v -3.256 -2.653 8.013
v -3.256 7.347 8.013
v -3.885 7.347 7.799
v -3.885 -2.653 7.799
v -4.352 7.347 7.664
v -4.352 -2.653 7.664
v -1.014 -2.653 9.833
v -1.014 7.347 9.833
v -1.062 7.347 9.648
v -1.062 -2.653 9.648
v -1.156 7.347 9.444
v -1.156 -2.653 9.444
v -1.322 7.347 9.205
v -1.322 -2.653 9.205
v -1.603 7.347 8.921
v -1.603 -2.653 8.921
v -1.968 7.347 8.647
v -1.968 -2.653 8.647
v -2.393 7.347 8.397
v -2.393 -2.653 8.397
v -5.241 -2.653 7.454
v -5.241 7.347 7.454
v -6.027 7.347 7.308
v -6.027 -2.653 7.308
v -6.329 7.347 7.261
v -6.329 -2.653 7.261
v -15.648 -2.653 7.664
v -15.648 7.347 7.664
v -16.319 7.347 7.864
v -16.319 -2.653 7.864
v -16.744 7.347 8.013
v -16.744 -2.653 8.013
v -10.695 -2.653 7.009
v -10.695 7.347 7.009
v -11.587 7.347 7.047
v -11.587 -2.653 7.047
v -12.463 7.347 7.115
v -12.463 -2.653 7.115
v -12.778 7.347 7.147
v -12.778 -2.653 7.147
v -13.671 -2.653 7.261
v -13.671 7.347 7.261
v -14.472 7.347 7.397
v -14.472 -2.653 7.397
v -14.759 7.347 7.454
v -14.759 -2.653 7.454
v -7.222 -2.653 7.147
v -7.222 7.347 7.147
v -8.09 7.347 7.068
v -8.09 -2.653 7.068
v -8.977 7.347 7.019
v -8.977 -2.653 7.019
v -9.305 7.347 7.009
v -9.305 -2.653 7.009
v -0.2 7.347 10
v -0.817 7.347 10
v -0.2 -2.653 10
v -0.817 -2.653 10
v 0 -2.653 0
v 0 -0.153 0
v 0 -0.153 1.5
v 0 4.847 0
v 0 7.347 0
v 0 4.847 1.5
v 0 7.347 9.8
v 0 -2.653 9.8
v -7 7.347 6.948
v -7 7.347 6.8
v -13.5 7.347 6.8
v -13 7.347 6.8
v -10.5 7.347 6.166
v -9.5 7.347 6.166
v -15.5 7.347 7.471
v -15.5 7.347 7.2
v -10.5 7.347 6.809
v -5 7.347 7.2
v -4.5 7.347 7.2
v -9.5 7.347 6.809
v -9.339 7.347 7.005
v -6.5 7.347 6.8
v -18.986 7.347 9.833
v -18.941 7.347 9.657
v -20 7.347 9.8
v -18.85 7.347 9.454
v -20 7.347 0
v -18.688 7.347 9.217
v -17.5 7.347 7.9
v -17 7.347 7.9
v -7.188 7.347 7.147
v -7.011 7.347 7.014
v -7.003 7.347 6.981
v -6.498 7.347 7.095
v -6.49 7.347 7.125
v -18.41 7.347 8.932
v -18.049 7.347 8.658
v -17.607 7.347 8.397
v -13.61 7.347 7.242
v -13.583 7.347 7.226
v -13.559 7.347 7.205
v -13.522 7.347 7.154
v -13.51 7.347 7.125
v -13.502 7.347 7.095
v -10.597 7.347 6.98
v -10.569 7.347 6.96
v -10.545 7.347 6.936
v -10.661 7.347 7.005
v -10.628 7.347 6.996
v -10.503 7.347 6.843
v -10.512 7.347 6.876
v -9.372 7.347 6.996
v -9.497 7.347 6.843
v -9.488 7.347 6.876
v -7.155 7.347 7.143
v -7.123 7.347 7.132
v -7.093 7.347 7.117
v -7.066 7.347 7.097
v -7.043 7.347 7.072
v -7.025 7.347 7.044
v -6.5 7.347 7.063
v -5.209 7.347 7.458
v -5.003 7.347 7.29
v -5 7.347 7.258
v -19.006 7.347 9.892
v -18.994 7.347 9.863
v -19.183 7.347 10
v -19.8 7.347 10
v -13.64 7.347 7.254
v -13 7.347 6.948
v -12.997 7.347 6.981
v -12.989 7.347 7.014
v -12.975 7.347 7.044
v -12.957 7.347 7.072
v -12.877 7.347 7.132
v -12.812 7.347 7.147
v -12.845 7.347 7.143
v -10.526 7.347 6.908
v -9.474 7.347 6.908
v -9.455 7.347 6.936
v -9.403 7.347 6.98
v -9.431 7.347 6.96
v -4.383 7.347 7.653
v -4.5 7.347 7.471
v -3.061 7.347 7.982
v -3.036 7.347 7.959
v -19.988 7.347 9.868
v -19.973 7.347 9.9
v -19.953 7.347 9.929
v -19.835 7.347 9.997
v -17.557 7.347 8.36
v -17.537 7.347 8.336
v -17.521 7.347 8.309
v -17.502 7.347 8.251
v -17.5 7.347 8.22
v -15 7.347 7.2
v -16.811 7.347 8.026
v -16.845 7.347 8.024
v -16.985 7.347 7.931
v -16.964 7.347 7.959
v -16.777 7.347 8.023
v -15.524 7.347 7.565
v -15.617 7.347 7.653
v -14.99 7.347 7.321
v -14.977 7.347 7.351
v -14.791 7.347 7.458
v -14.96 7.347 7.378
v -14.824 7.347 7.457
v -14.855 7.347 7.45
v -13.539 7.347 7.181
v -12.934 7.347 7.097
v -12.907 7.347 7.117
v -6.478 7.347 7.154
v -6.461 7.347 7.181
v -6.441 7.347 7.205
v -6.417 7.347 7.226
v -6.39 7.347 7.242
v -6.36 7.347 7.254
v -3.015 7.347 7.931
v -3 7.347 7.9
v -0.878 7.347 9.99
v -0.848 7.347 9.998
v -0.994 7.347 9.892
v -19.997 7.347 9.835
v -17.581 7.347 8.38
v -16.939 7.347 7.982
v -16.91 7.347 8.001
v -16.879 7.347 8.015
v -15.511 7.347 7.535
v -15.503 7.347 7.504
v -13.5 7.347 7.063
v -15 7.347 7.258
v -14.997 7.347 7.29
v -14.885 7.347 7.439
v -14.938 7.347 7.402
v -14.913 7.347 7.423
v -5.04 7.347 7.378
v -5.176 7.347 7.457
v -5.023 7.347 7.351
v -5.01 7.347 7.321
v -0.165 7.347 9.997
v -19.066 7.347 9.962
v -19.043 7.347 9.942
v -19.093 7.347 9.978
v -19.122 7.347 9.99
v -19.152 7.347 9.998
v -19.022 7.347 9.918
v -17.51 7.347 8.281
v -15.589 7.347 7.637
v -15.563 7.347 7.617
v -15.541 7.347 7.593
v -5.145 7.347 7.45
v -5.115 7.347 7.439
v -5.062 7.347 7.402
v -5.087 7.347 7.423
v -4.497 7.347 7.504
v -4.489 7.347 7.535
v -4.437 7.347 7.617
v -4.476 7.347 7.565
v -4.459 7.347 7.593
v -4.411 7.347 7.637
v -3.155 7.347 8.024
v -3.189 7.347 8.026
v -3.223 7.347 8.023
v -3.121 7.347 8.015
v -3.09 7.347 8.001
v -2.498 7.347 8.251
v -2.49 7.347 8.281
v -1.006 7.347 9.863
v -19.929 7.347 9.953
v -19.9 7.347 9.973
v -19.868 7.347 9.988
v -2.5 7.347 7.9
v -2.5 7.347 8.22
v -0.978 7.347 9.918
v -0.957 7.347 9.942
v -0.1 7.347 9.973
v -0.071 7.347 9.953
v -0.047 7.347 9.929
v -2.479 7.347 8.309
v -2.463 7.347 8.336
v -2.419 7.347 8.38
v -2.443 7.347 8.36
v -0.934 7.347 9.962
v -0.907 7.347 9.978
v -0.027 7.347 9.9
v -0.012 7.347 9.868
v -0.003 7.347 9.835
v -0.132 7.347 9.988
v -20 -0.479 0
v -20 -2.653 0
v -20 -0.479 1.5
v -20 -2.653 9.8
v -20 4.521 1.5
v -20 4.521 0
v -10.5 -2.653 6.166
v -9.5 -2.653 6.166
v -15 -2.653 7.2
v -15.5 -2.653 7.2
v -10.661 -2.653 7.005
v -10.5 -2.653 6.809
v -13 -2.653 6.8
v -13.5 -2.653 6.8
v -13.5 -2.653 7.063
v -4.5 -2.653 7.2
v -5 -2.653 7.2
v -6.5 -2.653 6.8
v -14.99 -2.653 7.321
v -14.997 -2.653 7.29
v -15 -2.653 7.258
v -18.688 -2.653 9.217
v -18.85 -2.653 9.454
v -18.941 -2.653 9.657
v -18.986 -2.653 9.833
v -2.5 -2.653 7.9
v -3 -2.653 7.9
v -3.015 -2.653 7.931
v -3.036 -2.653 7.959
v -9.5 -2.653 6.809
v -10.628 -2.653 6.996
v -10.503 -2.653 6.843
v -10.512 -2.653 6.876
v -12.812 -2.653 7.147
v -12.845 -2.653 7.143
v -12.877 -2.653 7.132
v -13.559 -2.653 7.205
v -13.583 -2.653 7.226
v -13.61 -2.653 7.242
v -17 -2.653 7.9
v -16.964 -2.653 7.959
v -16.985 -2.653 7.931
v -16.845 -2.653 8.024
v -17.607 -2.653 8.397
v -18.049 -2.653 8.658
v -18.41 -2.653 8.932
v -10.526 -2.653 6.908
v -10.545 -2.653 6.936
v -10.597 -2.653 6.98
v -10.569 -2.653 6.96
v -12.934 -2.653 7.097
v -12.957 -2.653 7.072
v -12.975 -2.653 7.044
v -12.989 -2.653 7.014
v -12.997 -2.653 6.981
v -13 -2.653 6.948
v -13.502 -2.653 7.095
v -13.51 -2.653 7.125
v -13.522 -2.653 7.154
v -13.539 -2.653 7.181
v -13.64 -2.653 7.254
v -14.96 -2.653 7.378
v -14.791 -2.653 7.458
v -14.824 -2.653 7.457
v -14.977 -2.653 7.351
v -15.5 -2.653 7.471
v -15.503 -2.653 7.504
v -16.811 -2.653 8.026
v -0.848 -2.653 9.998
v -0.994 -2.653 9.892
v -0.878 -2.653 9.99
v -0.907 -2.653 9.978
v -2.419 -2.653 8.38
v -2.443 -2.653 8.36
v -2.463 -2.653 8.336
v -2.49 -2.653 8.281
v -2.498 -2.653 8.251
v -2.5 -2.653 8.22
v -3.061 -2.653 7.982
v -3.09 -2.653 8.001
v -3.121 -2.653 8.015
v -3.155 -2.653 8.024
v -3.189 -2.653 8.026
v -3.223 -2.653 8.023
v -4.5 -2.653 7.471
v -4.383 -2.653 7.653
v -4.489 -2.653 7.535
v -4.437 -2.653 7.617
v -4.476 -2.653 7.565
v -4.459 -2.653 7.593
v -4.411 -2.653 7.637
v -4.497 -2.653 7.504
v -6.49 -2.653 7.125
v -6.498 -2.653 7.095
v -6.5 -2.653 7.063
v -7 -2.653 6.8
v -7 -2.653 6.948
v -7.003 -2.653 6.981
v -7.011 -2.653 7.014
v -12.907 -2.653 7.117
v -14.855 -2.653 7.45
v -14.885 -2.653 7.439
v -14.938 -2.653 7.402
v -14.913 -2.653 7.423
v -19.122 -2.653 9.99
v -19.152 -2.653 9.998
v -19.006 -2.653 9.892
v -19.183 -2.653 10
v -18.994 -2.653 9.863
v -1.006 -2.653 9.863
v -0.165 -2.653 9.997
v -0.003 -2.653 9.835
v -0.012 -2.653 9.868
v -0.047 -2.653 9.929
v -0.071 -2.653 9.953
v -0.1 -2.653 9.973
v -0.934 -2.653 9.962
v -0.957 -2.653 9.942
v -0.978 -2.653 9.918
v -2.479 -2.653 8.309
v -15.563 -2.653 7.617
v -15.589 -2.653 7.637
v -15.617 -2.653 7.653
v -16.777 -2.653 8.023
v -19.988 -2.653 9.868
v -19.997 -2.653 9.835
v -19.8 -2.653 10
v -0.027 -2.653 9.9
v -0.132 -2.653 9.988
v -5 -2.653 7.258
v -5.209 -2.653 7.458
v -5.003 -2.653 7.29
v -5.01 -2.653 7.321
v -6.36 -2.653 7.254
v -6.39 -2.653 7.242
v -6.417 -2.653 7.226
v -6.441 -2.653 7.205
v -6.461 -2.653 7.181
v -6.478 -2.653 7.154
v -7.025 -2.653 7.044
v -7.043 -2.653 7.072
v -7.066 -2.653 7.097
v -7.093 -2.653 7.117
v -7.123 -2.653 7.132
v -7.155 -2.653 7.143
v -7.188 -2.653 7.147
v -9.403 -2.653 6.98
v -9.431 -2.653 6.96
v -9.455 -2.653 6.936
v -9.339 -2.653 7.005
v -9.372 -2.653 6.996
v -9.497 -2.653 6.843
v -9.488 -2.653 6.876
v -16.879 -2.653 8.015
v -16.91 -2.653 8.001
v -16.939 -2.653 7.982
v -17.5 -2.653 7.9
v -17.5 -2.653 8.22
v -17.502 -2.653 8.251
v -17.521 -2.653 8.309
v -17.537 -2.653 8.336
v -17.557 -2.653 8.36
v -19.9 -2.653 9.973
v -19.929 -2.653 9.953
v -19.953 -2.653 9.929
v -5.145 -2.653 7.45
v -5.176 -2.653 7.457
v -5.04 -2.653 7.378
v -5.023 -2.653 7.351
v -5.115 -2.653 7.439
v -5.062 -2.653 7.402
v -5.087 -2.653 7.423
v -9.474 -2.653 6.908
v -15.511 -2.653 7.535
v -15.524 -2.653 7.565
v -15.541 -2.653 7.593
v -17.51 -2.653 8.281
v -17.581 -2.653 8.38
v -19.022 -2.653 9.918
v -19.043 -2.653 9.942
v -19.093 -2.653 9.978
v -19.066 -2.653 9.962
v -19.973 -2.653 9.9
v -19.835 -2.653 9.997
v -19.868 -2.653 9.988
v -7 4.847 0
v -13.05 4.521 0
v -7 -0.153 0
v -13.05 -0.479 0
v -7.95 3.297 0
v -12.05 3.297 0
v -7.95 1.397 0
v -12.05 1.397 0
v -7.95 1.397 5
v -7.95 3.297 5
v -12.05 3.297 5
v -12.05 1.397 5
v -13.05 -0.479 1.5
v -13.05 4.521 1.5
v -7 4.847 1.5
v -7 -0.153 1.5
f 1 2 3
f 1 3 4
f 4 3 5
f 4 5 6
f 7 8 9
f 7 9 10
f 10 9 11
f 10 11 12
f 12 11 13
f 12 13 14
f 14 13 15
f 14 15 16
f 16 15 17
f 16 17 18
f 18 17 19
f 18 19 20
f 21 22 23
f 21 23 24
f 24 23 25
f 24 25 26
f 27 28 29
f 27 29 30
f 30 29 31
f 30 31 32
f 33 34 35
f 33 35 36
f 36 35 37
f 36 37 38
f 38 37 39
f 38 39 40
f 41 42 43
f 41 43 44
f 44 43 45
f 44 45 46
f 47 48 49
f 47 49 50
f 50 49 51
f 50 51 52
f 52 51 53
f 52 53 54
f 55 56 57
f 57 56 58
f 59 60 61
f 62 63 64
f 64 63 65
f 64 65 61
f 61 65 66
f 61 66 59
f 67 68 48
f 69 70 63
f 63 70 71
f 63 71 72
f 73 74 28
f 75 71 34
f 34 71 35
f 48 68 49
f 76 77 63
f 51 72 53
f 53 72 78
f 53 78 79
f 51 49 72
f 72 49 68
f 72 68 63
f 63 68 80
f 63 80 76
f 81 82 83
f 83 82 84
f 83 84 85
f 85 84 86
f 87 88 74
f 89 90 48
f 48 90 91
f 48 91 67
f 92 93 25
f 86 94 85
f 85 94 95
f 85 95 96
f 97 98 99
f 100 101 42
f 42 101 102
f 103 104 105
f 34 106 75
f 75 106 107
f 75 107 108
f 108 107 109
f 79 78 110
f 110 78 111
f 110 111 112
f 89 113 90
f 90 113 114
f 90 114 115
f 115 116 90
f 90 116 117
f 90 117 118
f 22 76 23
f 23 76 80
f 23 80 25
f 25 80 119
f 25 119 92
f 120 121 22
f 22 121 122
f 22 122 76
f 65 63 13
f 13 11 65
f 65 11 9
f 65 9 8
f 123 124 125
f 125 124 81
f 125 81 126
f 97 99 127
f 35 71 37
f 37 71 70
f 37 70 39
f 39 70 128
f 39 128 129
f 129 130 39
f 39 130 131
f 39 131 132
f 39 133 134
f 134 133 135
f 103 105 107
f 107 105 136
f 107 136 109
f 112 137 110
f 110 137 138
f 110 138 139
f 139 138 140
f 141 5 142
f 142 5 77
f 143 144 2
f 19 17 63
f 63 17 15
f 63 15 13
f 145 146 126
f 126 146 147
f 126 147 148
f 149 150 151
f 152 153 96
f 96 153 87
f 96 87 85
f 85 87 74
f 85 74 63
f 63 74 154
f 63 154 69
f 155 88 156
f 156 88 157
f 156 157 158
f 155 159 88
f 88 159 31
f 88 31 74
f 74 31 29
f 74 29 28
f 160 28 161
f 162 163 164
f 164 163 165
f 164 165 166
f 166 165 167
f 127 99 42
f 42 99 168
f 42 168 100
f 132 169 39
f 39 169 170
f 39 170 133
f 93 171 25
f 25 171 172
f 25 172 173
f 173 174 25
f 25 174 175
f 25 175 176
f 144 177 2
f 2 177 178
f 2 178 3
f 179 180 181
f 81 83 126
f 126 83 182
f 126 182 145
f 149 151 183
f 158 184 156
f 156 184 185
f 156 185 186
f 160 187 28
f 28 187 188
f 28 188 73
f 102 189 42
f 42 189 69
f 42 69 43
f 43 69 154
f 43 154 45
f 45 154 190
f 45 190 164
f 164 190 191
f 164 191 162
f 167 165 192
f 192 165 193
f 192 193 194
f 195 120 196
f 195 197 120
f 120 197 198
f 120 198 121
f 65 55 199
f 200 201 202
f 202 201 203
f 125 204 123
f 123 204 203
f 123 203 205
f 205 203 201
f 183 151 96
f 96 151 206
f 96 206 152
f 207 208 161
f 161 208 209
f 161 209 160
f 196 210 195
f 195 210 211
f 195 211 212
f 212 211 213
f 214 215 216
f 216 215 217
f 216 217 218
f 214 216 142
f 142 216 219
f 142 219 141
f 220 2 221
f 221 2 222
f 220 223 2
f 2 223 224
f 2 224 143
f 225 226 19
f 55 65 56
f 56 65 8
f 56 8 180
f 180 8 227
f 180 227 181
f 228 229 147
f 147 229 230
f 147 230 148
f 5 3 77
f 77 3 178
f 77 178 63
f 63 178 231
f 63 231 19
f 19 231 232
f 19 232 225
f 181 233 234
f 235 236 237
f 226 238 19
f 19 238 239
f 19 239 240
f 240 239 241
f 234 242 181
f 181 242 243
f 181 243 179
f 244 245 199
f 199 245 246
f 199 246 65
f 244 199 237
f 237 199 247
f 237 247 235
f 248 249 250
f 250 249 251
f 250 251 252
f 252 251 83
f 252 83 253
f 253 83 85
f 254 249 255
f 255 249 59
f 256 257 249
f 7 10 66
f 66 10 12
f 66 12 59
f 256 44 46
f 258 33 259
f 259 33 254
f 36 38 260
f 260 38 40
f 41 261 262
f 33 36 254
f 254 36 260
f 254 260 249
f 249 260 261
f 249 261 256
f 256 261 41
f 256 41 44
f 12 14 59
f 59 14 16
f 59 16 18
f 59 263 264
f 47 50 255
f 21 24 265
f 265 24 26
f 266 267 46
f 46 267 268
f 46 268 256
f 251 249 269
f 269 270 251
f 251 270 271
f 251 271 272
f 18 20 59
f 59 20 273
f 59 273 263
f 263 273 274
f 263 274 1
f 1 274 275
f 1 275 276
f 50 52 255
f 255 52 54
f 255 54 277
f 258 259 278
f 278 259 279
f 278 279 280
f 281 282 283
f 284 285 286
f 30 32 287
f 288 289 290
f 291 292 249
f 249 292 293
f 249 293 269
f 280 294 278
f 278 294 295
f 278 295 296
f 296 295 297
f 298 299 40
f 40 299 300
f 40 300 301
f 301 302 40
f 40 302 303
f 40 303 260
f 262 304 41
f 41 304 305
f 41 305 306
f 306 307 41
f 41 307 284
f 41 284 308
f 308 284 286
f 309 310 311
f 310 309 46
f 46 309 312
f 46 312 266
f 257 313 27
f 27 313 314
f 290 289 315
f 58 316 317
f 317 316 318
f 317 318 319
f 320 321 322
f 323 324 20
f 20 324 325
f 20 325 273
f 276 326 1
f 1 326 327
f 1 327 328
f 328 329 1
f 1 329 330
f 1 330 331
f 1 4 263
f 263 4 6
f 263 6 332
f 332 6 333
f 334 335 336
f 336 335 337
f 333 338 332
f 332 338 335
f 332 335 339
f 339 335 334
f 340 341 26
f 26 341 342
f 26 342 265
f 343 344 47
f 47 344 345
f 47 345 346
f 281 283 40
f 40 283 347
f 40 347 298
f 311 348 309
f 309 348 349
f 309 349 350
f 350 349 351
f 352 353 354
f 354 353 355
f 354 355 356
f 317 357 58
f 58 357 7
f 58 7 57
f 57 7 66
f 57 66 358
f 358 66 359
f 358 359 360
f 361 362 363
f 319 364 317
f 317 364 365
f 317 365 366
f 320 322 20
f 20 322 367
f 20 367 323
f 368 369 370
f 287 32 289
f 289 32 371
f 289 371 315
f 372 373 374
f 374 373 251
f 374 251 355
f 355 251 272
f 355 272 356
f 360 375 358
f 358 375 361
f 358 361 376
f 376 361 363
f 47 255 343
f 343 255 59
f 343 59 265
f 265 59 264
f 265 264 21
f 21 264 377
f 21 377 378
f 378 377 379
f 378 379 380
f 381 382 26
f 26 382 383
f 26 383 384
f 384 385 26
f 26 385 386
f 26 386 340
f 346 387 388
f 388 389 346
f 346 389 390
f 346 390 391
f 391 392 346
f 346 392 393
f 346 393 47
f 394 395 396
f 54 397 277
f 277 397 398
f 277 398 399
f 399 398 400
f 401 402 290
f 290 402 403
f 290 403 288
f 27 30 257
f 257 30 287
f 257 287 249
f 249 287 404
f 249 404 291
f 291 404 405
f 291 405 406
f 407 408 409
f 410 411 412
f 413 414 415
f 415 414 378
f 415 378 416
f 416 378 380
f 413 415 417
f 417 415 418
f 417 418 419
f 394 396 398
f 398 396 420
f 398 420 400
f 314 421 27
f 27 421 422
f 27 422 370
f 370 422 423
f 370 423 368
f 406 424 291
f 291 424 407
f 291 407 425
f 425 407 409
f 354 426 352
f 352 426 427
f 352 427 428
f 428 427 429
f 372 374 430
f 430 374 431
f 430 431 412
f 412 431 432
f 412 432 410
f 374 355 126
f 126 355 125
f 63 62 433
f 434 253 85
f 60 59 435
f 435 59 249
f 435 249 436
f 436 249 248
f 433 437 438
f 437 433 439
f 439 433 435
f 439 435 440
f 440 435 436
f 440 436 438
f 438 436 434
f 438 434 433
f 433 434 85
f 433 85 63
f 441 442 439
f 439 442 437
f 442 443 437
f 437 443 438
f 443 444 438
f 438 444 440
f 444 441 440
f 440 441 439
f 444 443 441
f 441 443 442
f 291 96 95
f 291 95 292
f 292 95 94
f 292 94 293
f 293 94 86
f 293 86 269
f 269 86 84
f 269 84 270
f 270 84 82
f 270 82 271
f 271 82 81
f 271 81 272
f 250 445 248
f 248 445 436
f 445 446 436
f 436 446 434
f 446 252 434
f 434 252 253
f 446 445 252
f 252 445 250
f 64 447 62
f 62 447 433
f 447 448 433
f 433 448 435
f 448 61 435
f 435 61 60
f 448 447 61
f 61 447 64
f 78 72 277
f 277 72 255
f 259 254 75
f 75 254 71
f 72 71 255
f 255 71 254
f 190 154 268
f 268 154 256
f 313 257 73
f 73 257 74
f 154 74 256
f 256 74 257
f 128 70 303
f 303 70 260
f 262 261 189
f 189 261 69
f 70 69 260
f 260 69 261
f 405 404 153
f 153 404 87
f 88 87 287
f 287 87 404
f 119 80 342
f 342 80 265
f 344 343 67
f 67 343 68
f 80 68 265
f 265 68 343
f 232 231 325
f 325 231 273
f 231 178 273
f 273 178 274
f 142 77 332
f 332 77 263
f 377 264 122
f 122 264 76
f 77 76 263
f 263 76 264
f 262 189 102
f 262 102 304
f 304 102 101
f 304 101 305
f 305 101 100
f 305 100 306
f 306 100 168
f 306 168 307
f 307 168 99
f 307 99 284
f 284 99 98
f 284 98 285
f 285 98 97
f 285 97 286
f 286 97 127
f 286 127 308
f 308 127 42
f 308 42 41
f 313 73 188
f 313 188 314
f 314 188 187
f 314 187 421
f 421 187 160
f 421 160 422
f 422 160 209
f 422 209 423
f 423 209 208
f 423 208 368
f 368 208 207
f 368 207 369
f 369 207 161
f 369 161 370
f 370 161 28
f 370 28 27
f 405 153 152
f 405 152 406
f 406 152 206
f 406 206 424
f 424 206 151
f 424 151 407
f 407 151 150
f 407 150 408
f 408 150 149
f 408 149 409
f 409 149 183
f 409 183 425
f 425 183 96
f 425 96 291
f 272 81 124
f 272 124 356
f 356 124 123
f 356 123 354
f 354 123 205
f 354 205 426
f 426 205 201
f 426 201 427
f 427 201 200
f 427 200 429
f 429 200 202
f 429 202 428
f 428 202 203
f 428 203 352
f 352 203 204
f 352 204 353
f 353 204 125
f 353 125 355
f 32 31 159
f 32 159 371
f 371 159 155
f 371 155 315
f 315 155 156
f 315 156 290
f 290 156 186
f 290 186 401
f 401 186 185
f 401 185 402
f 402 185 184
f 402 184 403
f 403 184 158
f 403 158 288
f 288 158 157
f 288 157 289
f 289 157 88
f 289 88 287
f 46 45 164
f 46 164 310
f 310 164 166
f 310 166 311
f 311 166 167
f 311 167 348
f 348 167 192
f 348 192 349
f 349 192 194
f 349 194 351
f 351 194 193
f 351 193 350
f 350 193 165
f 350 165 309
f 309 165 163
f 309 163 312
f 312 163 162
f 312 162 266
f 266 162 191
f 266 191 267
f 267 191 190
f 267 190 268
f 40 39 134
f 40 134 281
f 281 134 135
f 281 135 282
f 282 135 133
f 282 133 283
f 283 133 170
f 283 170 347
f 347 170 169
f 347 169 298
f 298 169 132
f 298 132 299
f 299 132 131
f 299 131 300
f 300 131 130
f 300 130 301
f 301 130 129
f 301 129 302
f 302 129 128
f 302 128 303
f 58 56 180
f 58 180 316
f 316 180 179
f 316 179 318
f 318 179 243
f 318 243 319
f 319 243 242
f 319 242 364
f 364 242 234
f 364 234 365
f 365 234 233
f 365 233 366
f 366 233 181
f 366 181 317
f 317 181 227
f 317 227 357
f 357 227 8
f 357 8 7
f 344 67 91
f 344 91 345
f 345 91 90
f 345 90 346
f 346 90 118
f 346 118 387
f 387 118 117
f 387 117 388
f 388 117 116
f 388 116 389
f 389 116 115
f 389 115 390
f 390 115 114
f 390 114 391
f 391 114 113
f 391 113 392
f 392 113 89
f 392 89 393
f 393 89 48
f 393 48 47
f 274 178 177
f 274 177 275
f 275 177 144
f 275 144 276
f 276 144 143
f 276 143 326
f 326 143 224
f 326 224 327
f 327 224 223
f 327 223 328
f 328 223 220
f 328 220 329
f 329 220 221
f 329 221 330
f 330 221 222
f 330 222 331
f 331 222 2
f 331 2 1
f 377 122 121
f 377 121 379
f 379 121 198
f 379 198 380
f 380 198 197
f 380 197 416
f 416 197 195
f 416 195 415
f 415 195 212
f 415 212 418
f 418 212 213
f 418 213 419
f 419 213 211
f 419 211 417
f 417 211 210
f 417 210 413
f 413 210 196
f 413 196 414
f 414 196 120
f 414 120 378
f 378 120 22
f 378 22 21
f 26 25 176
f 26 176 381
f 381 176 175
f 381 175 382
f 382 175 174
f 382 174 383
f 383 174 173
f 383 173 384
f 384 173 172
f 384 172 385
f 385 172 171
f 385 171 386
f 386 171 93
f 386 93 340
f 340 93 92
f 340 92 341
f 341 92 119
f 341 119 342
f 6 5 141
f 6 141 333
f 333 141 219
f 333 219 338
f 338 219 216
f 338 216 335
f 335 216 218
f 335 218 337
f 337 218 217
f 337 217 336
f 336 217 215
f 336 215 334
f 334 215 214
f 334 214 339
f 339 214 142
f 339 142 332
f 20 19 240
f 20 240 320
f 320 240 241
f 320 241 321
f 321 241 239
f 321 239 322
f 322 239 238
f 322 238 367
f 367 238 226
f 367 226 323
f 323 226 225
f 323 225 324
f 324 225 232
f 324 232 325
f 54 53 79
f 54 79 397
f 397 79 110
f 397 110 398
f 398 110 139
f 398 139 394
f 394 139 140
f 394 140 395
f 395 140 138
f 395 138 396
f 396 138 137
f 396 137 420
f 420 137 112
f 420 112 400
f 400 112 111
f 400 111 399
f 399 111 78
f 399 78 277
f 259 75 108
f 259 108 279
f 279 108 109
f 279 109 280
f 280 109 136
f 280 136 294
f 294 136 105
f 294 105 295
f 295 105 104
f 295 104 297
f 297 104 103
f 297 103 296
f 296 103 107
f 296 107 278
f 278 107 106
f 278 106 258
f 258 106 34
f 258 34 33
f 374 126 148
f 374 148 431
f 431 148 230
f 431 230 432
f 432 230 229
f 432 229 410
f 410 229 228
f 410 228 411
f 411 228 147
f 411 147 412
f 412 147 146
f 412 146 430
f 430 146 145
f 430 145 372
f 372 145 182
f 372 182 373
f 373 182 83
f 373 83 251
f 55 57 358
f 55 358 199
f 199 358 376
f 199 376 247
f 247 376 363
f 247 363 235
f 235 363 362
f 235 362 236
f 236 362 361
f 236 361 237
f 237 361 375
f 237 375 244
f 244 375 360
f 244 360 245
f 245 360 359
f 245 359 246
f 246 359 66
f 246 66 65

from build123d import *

# Parameters (mm, degrees)
SKIZZE1_W                       = 20
SKIZZE1_H                       = 10
AUFSATZ_LINEAR_AUSTRAGEN1_DEPTH = 10
SKIZZE3_W                       = 4.1
SKIZZE3_H                       = 1.9
SCHNITT_LINEAR_AUSTRAGEN2_DEPTH = 5
SKIZZE9_RX                      = 9
SKIZZE9_RY                      = 3
SCHNITT_LINEAR_AUSTRAGEN3_DEPTH = 10
SKIZZE10_W                      = 6.95
SKIZZE10_H                      = 5
SCHNITT_LINEAR_AUSTRAGEN4_DEPTH = 1.5
SKIZZE11_W                      = 7
SKIZZE11_H                      = 5
SCHNITT_LINEAR_AUSTRAGEN5_DEPTH = 1.5
SKIZZE13_W                      = 1
SKIZZE13_H                      = 1
SCHNITT_LINEAR_AUSTRAGEN7_DEPTH = 10
SKIZZE14_W                      = 0.5
SKIZZE14_H                      = 0.5
SCHNITT_LINEAR_AUSTRAGEN8_DEPTH = 10
VERRUNDUNG2_R                   = 0.2
VERRUNDUNG3_R                   = 0.2
VERRUNDUNG4_R                   = 0.2
VERRUNDUNG5_R                   = 0.2
VERRUNDUNG6_R                   = 0.2


with BuildPart() as part:
    # Skizze1 → Aufsatz-Linear austragen1 (new body)
    with BuildSketch(Plane.XY):
        with Locations((-10, 2.346944746)):
            Rectangle(SKIZZE1_W, SKIZZE1_H)
    extrude(amount=AUFSATZ_LINEAR_AUSTRAGEN1_DEPTH)

    # Skizze3 → Schnitt-Linear austragen2 (cut)
    with BuildSketch(Plane(origin=(0, 0, 0), x_dir=(-1, 0, 0), z_dir=(0, 0, -1))):
        with Locations((10, 2.346944746)):
            Rectangle(SKIZZE3_W, SKIZZE3_H)
    extrude(amount=-SCHNITT_LINEAR_AUSTRAGEN2_DEPTH, mode=Mode.SUBTRACT)

    # Skizze9 → Schnitt-Linear austragen3 (cut)
    with BuildSketch(Plane(origin=(0, 7.346944746, 0), x_dir=(1, 0, 0), z_dir=(0, 1, 0))):
        with Locations((-10, -10)):
            Ellipse(SKIZZE9_RX, SKIZZE9_RY)
    extrude(amount=-SCHNITT_LINEAR_AUSTRAGEN3_DEPTH, mode=Mode.SUBTRACT)

    # Skizze10 → Schnitt-Linear austragen4 (cut)
    with BuildSketch(Plane(origin=(0, 0, 0), x_dir=(-1, 0, 0), z_dir=(0, 0, -1))):
        with Locations((16.525, 2.021356222)):
            Rectangle(SKIZZE10_W, SKIZZE10_H)
    extrude(amount=-SCHNITT_LINEAR_AUSTRAGEN4_DEPTH, mode=Mode.SUBTRACT)

    # Skizze11 → Schnitt-Linear austragen5 (cut)
    with BuildSketch(Plane(origin=(0, 0, 0), x_dir=(-1, 0, 0), z_dir=(0, 0, -1))):
        with Locations((3.5, 2.346944746)):
            Rectangle(SKIZZE11_W, SKIZZE11_H)
    extrude(amount=-SCHNITT_LINEAR_AUSTRAGEN5_DEPTH, mode=Mode.SUBTRACT)

    # Skizze13 → Schnitt-Linear austragen7 (cut)
    with BuildSketch(Plane.XZ.offset(2.653055254)):
        with Locations((-10, 6.665824705)):
            Rectangle(SKIZZE13_W, SKIZZE13_H)
    extrude(amount=-SCHNITT_LINEAR_AUSTRAGEN7_DEPTH, mode=Mode.SUBTRACT)

    # Skizze14 → Schnitt-Linear austragen8 (cut)
    with BuildSketch(Plane.XZ.offset(2.653055254)):
        with Locations((-15.25, 7.45)):
            Rectangle(SKIZZE14_W, SKIZZE14_H)
        with Locations((-4.75, 7.45)):
            Rectangle(SKIZZE14_W, SKIZZE14_H)
        with Locations((-13.25, 7.05)):
            Rectangle(SKIZZE14_W, SKIZZE14_H)
        with Locations((-2.75, 8.15)):
            Rectangle(SKIZZE14_W, SKIZZE14_H)
        with Locations((-17.25, 8.15)):
            Rectangle(SKIZZE14_W, SKIZZE14_H)
        with Locations((-6.75, 7.05)):
            Rectangle(SKIZZE14_W, SKIZZE14_H)
    extrude(amount=-SCHNITT_LINEAR_AUSTRAGEN8_DEPTH, mode=Mode.SUBTRACT)

    # Verrundung2
    verrundung2_edges = [part.edges().sort_by_distance(p)[0] for p in [
        (-13.5, 2.346944746, 7.236146008),
        (-15.5, 2.346944746, 7.625365525),
        (-17.5, 2.346944746, 8.341687605),
        (-19, 2.346944746, 10),
    ]]
    fillet(verrundung2_edges, radius=VERRUNDUNG2_R)

    # Verrundung3
    # the kernel refuses this fillet: 0.2 mm, written as the material it takes off along each edge
    with BuildSketch(Plane(origin=(-17, -3.342182333, 8.114381917), x_dir=(0.9302782404562213, 0, -0.3668547332850931), z_dir=(0, 1, 0))) as verrundung3_piece_1:
        with BuildLine():
            CenterArc((0.278646285, 0.199977567), VERRUNDUNG3_R, 180.155482176, 88.986351642)
            Line((0.078647021, 0.199434832), (0.074647036, 0.199423978))
            ThreePointArc((0.074647036, 0.199423978), (0.035602397, 0.101184835), (-0.003721113, 0.001467419))
            Line((-0.003721113, 0.001467419), (6.2365e-05, -0.003999514))
            ThreePointArc((6.2365e-05, -0.003999514), (0.137824964, -0.002947258), (0.275590922, -0.003999551))
            Line((0.275590922, -0.003999551), (0.275650831, 0))
        make_face()
    extrude(amount=11.378254157, mode=Mode.SUBTRACT)
    with BuildSketch(Plane(origin=(-15, -3.272043648, 7.505561742), x_dir=(0.9776339897126725, 0, -0.2103135329893973), z_dir=(0, 1, 0))) as verrundung3_piece_2:
        with BuildLine():
            CenterArc((0.247599452, 0.199994931), VERRUNDUNG3_R, 167.859273294, 101.732777732)
            Line((0.052072654, 0.242057637), (0.048162118, 0.242898891))
            Line((0.048162118, 0.242898891), (-0.003910536, 0.000841254))
            Line((-0.003910536, 0.000841254), (2.8981e-05, -0.003999895))
            ThreePointArc((2.8981e-05, -0.003999895), (0.123087615, -0.00355801), (0.246146974, -0.003999899))
            Line((0.246146974, -0.003999899), (0.246175454, 0))
        make_face()
    extrude(amount=11.237976787, mode=Mode.SUBTRACT)
    with BuildSketch(Plane(origin=(-13, -3.212731809, 7.171572875), x_dir=(0, 0, -1), z_dir=(0, 1, 0))) as verrundung3_piece_3:
        with BuildLine():
            CenterArc((0.223870622, -0.2), VERRUNDUNG3_R, 90, 96.174915405)
            Line((0.025030991, -0.221512819), (0.021054199, -0.221943076))
            ThreePointArc((0.021054199, -0.221943076), (0.008804856, -0.111175678), (-0.003972508, -0.000468165))
            Line((-0.003972508, -0.000468165), (0, 0.004))
            Line((0, 0.004), (0.223870622, 0.004))
            Line((0.223870622, 0.004), (0.223870622, 0))
        make_face()
    extrude(amount=11.119353109, mode=Mode.SUBTRACT)

    # Verrundung4
    # the kernel refuses this fillet: 0.2 mm, written as the material it takes off along each edge
    with BuildSketch(Plane(origin=(-1, 7.805203231, 10), x_dir=(1, 0, 0), z_dir=(0, -1, 0))) as verrundung4_piece_1:
        with BuildLine():
            CenterArc((0.183303394, -0.2), VERRUNDUNG4_R, 90, 80.504337422)
            Line((-0.013956225, -0.167005412), (-0.017901417, -0.16634552))
            ThreePointArc((-0.017901417, -0.16634552), (-0.007497365, -0.083459179), (-0.004, 0))
            Line((-0.004, 0), (0, 0.004))
            Line((0, 0.004), (0.183303394, 0.004))
            Line((0.183303394, 0.004), (0.183303394, 0))
        make_face()
    extrude(amount=10.91651697, mode=Mode.SUBTRACT)
    with BuildSketch(Plane(origin=(-7, -3.212731809, 7.171572875), x_dir=(0, 0, -1), z_dir=(0, 1, 0))) as verrundung4_piece_2:
        with BuildLine():
            CenterArc((0.223870622, 0.2), VERRUNDUNG4_R, 173.825084595, 96.174915405)
            Line((0.025030991, 0.221512819), (0.021054199, 0.221943076))
            ThreePointArc((0.021054199, 0.221943076), (0.008804856, 0.111175678), (-0.003972508, 0.000468165))
            Line((-0.003972508, 0.000468165), (0, -0.004))
            Line((0, -0.004), (0.223870622, -0.004))
            Line((0.223870622, -0.004), (0.223870622, 0))
        make_face()
    extrude(amount=11.119353109, mode=Mode.SUBTRACT)
    with BuildSketch(Plane(origin=(-3, -3.342182333, 8.114381917), x_dir=(0, 0, -1), z_dir=(0, 1, 0))) as verrundung4_piece_3:
        with BuildLine():
            CenterArc((0.288257487, 0.185855858), VERRUNDUNG4_R, 159.336395365, 88.986351642)
            Line((0.101123812, 0.25643197), (0.097381139, 0.257843493))
            ThreePointArc((0.097381139, 0.257843493), (0.04781997, 0.12929678), (-0.003697782, 0.001525257))
            Line((-0.003697782, 0.001525257), (0, -0.004))
            ThreePointArc((0, -0.004), (0.107190958, -0.004), (0.212904405, -0.003717117))
            Line((0.212904405, -0.003717117), (0.214381917, 0))
        make_face()
    extrude(amount=11.378254157, mode=Mode.SUBTRACT)
    with BuildSketch(Plane(origin=(-5, -3.272043648, 7.505561742), x_dir=(0, 0, -1), z_dir=(0, 1, 0))) as verrundung4_piece_4:
        with BuildLine():
            CenterArc((0.247595357, 0.2), VERRUNDUNG4_R, 168.267222268, 101.732777732)
            Line((0.051774029, 0.240669491), (0.047857603, 0.241482881))
            ThreePointArc((0.047857603, 0.241482881), (0.02240856, 0.121082934), (-0.003904338, 0.000869565))
            Line((-0.003904338, 0.000869565), (0, -0.004))
            Line((0, -0.004), (0.247595357, -0.004))
            Line((0.247595357, -0.004), (0.247595357, 0))
        make_face()
    extrude(amount=11.237976787, mode=Mode.SUBTRACT)
    with BuildSketch(Plane(origin=(-6.5, -3.085874245, 7.236146008), x_dir=(0.9896812974841964, 0, 0.1432861801081929), z_dir=(0, 1, 0))) as verrundung4_piece_5:
        with BuildLine():
            CenterArc((0.173129468, 0.19999838), VERRUNDUNG4_R, 188.238048246, 81.531348944)
            Line((-0.024806792, 0.171341144), (-0.028765517, 0.170767999))
            Line((-0.028765517, 0.170767999), (-0.003958725, -0.000573145))
            Line((-0.003958725, -0.000573145), (1.5974e-05, -0.003999968))
            ThreePointArc((1.5974e-05, -0.003999968), (0.086162287, -0.00382729), (0.172308415, -0.003999968))
            Line((0.172308415, -0.003999968), (0.172324514, 0))
        make_face()
    extrude(amount=10.865637981, mode=Mode.SUBTRACT)
    with BuildSketch(Plane(origin=(-4.5, -3.03856184, 7.625365525), x_dir=(0.9671190047653414, 0, 0.2543242627467847), z_dir=(0, 1, 0))) as verrundung4_piece_6:
        with BuildLine():
            CenterArc((0.15420633, 0.199997151), VERRUNDUNG4_R, 194.733548244, 74.960608015)
            Line((-0.039217471, 0.149132298), (-0.043085947, 0.148115001))
            Line((-0.043085947, 0.148115001), (-0.003868476, -0.001017297))
            Line((-0.003868476, -0.001017297), (2.106e-05, -0.003999945))
            ThreePointArc((2.106e-05, -0.003999945), (0.076569439, -0.003797048), (0.153117387, -0.003999943))
            Line((0.153117387, -0.003999943), (0.153138739, 0))
        make_face()
    extrude(amount=10.771013171, mode=Mode.SUBTRACT)
    with BuildSketch(Plane(origin=(-2.5, -2.958042767, 8.341687605), x_dir=(0.8891677006710952, 0, 0.45758146824721596), z_dir=(0, 1, 0))) as verrundung4_piece_7:
        with BuildLine():
            CenterArc((0.122010887, 0.199990312), VERRUNDUNG4_R, 207.231153848, 62.204893345)
            Line((-0.055822654, 0.108474018), (-0.059379324, 0.106643692))
            Line((-0.059379324, 0.106643692), (-0.003556671, -0.001830326))
            Line((-0.003556671, -0.001830326), (3.845e-05, -0.003999815))
            ThreePointArc((3.845e-05, -0.003999815), (0.060021389, -0.003708116), (0.120002981, -0.003999806))
            Line((0.120002981, -0.003999806), (0.120042352, 0))
        make_face()
    extrude(amount=10.609975026, mode=Mode.SUBTRACT)

    # Verrundung5
    verrundung5_edges = [part.edges().sort_by_distance(p)[0] for p in [
        (-9.5, 2.346944746, 7.004633207),
        (-10.5, 2.346944746, 7.004633207),
    ]]
    fillet(verrundung5_edges, radius=VERRUNDUNG5_R)

    # Verrundung6
    verrundung6_edges = [part.edges().sort_by_distance(p)[0] for p in [
        (-20, 2.346944746, 10),
        (0, 2.346944746, 10),
    ]]
    fillet(verrundung6_edges, radius=VERRUNDUNG6_R)


solid = part.part
